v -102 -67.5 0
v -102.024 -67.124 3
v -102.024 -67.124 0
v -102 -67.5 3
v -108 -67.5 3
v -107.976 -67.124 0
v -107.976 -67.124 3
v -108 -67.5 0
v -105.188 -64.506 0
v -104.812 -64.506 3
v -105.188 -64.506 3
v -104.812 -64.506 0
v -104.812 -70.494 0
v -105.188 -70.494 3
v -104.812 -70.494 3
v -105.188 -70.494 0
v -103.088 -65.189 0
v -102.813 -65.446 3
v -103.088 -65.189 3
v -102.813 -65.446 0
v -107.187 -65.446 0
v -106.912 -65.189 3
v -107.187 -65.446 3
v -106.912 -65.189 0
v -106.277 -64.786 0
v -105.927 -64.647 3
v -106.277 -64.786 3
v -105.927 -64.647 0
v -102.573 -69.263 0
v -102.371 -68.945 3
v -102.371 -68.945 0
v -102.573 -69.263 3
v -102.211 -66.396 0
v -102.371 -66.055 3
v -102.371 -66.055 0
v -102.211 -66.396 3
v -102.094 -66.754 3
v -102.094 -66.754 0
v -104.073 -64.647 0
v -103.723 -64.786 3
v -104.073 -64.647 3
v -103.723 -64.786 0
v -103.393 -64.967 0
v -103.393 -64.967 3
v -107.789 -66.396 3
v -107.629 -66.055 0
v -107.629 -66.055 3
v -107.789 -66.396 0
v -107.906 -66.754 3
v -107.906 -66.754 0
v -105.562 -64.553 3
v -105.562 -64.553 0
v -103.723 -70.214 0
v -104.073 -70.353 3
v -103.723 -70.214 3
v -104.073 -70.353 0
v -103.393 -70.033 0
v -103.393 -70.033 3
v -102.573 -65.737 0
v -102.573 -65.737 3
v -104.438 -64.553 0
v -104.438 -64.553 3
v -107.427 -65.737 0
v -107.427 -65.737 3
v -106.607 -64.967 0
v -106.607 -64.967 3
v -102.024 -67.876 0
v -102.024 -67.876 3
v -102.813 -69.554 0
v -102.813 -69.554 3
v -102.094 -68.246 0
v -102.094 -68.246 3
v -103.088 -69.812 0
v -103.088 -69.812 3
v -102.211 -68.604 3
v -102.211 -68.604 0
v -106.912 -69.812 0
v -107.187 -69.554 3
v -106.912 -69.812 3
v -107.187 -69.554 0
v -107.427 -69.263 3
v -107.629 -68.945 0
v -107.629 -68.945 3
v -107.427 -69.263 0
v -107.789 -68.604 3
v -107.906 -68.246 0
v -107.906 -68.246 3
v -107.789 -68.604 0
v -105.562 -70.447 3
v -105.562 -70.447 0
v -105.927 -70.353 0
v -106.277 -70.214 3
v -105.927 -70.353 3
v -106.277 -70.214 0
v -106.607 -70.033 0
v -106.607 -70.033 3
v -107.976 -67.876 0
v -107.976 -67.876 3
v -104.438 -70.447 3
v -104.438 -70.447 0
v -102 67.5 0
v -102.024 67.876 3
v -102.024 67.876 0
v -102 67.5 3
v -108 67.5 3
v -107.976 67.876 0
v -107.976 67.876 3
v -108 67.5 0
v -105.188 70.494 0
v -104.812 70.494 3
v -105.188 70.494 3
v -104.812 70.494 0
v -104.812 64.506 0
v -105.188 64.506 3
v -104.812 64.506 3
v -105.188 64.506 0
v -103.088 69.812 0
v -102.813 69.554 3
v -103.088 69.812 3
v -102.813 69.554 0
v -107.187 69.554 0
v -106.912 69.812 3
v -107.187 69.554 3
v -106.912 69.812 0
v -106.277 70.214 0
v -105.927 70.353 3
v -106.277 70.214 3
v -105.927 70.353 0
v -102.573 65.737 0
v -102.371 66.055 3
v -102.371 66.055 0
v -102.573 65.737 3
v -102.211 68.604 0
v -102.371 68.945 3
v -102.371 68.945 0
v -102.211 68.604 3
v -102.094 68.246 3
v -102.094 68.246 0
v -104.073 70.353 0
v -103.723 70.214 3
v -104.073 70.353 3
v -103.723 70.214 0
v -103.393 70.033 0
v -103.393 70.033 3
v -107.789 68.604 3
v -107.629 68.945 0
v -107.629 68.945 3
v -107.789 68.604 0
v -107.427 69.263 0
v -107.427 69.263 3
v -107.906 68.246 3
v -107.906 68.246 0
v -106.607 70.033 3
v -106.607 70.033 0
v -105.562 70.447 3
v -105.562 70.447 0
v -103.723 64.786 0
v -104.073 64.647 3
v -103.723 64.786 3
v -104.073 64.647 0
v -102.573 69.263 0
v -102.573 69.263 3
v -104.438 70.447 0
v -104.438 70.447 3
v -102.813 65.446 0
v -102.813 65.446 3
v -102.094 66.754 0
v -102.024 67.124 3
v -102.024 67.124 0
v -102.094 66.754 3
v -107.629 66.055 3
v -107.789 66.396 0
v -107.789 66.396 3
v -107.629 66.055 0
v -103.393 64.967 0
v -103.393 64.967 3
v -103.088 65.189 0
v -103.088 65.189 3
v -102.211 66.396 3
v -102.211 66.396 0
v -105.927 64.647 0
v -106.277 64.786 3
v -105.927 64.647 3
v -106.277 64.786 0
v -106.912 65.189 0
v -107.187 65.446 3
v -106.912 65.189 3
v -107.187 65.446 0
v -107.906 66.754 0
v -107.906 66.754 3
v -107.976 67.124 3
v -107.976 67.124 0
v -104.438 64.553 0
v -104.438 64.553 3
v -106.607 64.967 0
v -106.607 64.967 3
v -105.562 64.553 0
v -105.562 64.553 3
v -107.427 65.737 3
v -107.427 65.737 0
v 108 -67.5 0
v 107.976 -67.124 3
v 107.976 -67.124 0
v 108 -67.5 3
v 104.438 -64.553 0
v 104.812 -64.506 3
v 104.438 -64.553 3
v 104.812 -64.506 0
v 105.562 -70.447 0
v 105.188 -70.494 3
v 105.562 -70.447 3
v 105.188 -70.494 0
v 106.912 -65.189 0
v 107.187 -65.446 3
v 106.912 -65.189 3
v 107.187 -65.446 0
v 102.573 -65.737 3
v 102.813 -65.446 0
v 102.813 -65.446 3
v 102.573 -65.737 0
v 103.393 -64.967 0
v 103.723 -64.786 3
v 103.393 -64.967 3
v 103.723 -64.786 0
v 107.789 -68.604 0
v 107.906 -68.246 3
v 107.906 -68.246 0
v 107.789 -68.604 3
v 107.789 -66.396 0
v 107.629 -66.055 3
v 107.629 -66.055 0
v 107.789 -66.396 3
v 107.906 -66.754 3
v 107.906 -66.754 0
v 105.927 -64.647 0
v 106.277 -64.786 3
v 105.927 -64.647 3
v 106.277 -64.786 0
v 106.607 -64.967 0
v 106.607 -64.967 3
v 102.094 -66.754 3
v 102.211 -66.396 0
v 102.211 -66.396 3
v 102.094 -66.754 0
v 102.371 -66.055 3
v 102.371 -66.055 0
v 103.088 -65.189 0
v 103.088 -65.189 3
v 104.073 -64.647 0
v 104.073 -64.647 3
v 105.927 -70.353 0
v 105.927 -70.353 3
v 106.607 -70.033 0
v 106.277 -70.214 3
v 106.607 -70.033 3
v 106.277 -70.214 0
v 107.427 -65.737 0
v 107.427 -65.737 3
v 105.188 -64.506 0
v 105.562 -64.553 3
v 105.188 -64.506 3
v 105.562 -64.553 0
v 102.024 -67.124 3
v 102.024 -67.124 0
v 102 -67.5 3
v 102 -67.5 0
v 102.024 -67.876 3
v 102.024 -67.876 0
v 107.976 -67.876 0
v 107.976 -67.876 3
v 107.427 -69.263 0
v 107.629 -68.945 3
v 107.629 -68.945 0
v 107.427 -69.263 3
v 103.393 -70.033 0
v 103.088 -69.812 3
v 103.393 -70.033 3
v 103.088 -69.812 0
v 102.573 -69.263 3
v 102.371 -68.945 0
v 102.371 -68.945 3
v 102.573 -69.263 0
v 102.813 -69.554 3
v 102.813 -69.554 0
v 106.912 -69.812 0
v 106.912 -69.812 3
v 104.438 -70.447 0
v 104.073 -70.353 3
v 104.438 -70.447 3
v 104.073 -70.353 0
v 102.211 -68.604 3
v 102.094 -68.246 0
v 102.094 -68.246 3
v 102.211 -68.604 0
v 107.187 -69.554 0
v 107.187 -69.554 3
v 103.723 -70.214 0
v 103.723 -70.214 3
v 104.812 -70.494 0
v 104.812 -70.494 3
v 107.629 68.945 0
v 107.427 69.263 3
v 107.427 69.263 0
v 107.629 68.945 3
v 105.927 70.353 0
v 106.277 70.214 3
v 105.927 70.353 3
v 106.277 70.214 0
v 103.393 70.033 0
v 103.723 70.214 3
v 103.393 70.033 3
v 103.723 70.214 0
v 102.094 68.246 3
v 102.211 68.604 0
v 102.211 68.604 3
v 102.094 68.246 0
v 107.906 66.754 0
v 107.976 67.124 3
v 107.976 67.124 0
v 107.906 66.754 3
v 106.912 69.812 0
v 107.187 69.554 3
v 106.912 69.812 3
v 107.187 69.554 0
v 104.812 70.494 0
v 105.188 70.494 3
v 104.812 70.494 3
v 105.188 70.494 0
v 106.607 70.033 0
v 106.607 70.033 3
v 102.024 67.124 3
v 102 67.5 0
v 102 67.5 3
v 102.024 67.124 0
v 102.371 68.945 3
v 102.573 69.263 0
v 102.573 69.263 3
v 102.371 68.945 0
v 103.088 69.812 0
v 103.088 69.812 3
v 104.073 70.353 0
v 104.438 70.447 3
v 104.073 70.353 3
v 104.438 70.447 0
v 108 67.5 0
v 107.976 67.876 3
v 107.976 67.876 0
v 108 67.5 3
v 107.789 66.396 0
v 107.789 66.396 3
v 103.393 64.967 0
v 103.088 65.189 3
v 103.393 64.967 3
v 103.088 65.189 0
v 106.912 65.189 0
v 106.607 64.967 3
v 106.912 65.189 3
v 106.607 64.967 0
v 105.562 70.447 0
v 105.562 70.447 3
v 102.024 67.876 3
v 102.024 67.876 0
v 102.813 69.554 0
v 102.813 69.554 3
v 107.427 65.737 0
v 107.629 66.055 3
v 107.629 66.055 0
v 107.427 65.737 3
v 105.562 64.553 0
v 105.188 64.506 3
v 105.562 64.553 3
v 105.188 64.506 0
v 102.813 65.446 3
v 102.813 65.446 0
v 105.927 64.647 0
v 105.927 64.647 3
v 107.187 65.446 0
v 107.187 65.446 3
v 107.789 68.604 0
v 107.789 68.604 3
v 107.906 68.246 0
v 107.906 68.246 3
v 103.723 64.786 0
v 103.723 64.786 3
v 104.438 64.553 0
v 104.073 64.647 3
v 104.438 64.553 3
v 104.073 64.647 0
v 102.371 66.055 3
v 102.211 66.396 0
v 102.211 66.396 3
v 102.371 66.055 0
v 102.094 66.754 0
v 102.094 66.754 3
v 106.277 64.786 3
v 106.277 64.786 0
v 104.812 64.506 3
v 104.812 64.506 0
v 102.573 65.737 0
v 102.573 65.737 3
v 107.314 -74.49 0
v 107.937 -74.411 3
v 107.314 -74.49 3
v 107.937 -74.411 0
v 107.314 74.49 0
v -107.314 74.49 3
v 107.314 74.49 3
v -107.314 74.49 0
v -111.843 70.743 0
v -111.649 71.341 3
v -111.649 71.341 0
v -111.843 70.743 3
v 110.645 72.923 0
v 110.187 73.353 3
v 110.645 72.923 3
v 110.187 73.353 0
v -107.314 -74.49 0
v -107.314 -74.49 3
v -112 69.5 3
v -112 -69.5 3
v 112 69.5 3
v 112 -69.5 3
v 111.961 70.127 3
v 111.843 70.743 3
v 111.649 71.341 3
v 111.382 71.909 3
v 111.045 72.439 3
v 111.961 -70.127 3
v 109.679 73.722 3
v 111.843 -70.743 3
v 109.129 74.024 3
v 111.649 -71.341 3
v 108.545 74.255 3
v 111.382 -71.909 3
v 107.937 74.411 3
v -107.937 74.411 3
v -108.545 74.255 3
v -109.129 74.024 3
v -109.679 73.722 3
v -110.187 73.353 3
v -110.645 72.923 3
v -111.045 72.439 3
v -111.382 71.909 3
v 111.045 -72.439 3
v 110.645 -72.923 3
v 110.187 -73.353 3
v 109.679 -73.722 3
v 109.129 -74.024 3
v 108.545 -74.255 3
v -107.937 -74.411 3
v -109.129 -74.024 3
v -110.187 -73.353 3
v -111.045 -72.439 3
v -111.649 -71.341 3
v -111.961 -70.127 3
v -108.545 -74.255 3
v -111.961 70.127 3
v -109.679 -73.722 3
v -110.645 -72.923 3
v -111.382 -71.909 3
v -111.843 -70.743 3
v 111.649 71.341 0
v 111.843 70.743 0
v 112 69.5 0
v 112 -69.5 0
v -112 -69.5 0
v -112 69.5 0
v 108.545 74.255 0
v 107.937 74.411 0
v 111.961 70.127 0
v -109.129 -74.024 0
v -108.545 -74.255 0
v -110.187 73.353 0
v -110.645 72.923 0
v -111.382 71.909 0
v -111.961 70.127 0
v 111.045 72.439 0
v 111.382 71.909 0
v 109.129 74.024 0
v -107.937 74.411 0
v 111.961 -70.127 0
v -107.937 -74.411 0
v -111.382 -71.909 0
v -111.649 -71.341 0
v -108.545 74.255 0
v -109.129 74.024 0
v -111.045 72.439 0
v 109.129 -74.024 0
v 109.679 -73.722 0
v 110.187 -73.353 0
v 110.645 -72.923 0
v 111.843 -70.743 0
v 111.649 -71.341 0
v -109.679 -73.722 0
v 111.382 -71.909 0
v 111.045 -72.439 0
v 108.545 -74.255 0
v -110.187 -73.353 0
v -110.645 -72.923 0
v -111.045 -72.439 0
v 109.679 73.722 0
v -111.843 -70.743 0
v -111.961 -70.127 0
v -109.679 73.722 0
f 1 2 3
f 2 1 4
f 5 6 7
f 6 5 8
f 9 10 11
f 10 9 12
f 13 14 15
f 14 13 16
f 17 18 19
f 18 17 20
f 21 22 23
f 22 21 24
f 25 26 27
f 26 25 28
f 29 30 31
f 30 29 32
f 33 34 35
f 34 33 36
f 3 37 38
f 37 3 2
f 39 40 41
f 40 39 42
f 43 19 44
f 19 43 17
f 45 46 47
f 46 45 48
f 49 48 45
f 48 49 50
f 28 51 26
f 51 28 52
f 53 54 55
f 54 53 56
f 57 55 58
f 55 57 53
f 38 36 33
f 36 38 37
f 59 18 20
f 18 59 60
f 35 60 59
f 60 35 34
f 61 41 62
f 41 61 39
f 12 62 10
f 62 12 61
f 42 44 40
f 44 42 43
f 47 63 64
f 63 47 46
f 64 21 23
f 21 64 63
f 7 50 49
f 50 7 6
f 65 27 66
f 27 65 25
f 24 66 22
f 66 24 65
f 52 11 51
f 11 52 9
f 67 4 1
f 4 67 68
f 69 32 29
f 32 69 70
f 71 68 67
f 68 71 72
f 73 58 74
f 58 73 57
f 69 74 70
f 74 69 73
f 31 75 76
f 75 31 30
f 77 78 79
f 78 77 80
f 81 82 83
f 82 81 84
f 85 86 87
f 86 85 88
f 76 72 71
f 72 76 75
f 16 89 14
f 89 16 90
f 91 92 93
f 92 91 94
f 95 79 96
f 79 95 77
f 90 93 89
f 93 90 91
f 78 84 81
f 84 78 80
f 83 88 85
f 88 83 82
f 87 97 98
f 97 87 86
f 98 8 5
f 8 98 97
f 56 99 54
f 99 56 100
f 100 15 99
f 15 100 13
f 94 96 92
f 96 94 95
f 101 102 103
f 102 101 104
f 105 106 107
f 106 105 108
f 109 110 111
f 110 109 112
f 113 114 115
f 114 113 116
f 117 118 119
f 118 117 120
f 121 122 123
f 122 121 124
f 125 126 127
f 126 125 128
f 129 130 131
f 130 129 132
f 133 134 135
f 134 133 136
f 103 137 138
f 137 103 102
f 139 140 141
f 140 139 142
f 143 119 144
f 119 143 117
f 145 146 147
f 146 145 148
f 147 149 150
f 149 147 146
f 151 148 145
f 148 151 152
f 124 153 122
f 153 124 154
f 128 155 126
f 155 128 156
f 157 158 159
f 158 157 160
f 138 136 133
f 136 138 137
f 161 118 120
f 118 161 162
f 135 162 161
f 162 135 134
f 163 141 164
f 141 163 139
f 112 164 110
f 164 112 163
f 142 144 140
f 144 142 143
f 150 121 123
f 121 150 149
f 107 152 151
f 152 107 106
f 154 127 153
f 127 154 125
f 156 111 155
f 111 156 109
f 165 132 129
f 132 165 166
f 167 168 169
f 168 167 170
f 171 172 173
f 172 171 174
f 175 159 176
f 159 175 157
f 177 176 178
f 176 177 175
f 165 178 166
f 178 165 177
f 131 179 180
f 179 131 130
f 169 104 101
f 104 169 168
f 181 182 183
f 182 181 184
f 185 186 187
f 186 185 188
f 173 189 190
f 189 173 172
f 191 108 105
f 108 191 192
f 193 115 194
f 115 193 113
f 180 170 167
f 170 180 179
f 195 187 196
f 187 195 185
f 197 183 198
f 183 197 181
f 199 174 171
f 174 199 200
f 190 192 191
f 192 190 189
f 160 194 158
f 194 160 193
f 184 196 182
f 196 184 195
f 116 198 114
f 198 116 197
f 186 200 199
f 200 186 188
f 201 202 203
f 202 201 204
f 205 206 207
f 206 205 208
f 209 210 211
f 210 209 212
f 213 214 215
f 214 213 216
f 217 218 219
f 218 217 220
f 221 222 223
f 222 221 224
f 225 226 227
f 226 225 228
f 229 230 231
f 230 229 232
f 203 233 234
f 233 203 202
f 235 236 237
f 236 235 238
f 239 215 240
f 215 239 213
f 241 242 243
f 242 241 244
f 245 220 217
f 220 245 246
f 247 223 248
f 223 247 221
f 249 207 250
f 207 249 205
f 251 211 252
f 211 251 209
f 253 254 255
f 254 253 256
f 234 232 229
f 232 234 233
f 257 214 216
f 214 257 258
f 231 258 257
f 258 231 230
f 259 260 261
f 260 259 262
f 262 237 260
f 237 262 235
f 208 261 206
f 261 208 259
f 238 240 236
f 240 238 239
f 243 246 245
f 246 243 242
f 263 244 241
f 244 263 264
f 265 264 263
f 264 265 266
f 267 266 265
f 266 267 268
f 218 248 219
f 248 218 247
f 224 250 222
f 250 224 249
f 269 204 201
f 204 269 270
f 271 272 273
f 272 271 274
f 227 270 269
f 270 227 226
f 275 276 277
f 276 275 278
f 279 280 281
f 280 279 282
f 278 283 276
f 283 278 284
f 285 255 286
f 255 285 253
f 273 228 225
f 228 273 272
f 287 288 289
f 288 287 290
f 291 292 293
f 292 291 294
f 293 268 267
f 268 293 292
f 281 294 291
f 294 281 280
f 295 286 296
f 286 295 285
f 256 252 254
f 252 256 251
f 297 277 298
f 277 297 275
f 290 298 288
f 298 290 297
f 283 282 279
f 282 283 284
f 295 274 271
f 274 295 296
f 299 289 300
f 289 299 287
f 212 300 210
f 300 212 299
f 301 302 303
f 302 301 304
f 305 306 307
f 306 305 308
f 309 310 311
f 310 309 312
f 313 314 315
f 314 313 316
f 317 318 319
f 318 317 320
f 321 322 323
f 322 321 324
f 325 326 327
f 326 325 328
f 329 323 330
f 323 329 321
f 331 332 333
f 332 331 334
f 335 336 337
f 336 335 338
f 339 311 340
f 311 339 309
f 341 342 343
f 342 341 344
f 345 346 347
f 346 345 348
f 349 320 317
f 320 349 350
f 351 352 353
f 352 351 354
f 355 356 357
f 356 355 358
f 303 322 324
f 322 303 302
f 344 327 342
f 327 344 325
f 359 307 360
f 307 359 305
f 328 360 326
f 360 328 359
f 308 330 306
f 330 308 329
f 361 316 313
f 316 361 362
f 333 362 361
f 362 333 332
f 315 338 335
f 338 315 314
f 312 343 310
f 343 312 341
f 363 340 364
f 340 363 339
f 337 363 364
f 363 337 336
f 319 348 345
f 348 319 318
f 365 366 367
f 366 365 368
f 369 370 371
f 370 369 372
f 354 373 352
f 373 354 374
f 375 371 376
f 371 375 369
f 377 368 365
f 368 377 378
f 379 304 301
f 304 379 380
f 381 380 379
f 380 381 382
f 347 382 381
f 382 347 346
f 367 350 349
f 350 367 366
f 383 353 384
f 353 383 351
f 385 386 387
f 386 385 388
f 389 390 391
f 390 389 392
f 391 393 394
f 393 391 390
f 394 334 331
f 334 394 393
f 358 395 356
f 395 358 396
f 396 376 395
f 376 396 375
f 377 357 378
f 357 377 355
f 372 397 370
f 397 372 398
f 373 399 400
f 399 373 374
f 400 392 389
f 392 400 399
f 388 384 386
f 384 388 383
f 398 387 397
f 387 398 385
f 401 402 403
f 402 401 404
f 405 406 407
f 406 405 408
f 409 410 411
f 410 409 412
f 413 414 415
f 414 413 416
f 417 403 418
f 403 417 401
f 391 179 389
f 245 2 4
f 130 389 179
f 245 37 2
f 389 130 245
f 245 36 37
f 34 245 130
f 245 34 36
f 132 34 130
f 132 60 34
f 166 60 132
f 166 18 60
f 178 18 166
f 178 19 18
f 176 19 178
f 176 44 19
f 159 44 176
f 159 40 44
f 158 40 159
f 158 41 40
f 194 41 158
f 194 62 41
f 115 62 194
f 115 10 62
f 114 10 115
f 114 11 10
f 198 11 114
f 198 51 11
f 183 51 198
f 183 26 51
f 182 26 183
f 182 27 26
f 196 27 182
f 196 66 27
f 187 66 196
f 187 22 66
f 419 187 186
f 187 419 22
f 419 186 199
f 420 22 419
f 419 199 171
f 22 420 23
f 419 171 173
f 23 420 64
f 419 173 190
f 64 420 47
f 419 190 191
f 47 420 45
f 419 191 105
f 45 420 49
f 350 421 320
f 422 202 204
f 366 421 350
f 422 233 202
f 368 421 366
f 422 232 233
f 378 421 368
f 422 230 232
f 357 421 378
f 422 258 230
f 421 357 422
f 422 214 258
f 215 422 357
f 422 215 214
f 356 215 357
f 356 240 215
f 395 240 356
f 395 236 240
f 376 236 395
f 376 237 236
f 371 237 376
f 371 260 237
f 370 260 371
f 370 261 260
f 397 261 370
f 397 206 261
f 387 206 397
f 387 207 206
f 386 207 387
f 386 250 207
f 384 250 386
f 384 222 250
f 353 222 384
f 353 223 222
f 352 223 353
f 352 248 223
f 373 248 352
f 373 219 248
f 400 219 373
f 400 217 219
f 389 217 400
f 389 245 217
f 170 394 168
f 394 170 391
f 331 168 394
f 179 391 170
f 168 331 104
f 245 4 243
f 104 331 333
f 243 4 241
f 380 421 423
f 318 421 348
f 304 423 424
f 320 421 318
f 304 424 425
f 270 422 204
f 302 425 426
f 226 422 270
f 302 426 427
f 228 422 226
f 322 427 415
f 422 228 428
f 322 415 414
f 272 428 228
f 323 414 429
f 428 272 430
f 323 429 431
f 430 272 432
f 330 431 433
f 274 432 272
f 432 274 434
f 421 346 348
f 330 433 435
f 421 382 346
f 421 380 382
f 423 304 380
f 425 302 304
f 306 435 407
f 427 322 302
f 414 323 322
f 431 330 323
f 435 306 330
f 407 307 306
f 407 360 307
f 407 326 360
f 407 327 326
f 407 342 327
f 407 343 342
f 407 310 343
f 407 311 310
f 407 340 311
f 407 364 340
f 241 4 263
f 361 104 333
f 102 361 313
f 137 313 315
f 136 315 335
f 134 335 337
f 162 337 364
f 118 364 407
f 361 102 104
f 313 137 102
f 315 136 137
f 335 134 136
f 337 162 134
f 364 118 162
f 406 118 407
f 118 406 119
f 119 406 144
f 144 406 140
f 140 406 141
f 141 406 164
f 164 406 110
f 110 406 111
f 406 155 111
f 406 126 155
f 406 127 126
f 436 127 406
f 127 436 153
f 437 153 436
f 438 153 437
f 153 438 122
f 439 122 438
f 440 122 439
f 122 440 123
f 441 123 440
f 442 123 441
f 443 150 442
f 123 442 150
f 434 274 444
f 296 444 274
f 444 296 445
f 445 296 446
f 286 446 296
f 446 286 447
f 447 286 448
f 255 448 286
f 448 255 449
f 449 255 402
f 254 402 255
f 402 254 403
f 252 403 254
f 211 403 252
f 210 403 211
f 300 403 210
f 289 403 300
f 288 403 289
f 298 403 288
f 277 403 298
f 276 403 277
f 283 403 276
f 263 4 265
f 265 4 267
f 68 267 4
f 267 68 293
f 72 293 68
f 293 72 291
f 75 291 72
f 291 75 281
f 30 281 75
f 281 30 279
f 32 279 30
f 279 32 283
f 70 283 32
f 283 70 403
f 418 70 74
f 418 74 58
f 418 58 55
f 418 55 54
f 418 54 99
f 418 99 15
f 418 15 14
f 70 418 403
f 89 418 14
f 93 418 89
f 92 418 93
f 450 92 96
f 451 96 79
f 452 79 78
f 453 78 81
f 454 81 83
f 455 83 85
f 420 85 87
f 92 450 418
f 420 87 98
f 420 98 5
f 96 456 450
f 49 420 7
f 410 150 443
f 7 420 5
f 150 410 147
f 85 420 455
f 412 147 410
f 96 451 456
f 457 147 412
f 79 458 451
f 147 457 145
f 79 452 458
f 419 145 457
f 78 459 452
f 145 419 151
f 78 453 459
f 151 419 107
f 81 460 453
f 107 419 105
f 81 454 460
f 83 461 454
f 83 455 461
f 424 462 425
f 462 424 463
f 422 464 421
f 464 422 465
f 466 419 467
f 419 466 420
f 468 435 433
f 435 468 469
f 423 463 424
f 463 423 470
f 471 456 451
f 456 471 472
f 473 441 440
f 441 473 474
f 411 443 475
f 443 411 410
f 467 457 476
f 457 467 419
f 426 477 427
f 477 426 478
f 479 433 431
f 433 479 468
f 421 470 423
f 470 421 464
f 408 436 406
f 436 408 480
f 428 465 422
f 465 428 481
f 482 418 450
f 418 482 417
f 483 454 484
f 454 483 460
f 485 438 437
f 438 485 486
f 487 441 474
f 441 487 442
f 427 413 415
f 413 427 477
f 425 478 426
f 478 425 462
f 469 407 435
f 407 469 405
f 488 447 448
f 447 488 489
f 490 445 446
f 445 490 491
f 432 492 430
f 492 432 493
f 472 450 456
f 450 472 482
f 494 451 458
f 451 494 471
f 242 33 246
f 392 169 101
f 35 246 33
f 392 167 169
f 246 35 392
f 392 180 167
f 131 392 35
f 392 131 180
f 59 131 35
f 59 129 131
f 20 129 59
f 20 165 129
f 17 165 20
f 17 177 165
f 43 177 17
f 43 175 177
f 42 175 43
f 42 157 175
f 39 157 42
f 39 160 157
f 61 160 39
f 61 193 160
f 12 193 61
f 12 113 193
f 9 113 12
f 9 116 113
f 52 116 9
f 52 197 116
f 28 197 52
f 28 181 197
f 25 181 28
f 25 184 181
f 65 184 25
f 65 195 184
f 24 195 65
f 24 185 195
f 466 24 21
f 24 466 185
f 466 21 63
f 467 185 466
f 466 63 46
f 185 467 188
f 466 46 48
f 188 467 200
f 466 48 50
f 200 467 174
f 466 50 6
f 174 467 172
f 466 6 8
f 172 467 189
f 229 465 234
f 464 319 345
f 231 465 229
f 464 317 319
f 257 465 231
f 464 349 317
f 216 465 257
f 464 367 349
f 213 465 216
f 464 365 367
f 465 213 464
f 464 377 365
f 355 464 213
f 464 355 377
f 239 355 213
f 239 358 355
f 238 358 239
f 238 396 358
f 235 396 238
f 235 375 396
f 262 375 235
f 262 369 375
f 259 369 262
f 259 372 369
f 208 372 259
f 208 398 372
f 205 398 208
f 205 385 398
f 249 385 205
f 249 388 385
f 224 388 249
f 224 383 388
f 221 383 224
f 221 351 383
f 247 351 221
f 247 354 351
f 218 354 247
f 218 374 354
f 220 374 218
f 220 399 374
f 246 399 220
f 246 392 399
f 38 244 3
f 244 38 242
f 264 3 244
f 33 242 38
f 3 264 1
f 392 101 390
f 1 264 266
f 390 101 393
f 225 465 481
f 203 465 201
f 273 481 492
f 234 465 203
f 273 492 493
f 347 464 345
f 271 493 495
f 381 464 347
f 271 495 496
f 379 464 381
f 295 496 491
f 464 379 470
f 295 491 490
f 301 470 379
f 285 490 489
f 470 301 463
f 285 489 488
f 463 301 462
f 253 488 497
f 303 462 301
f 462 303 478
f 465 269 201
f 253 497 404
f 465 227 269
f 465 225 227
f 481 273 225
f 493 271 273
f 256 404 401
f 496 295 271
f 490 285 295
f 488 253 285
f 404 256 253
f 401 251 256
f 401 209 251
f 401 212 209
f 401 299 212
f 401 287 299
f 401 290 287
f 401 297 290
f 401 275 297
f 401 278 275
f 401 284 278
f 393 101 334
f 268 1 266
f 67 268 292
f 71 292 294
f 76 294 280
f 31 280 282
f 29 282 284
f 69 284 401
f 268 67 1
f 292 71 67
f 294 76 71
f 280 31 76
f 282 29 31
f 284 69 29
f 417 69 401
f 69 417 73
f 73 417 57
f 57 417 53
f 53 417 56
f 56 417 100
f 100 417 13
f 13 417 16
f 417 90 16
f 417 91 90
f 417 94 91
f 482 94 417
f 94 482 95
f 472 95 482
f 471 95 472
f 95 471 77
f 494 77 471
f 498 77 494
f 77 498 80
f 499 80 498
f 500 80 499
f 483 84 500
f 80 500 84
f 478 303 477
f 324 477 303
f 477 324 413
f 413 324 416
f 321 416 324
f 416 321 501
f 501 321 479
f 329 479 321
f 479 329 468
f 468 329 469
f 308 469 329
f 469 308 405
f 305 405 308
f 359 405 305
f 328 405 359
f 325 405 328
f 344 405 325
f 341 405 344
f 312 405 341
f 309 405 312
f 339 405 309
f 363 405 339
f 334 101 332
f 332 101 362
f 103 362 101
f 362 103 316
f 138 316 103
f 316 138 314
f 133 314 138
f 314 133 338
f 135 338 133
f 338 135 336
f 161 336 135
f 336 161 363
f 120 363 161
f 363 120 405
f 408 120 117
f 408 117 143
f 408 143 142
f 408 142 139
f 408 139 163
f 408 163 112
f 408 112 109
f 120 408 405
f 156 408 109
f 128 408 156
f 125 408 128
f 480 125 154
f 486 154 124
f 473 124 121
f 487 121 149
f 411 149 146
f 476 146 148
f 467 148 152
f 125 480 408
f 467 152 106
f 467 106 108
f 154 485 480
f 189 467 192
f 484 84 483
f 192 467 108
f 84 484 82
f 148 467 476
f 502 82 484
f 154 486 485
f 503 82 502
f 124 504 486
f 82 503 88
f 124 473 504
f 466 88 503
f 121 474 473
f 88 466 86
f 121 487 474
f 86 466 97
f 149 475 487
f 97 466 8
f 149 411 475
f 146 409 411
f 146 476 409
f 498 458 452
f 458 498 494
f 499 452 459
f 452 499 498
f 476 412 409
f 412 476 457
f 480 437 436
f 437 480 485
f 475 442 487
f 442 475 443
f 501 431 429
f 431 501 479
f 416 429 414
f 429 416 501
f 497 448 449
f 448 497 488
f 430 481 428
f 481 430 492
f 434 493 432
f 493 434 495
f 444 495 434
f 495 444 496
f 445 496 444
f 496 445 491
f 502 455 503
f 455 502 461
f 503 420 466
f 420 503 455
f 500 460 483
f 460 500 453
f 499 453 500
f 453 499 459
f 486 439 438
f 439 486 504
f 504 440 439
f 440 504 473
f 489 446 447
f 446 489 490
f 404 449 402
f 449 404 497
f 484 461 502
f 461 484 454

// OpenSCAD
$fn = 50;


difference() {
	union() {
		hull() {
			translate(v = [-107.0000000000, 69.5000000000, 0]) {
				cylinder(h = 3, r = 5);
			}
			translate(v = [107.0000000000, 69.5000000000, 0]) {
				cylinder(h = 3, r = 5);
			}
			translate(v = [-107.0000000000, -69.5000000000, 0]) {
				cylinder(h = 3, r = 5);
			}
			translate(v = [107.0000000000, -69.5000000000, 0]) {
				cylinder(h = 3, r = 5);
			}
		}
	}
	union() {
		translate(v = [-105.0000000000, -67.5000000000, -100.0000000000]) {
			cylinder(h = 200, r = 3.0000000000);
		}
		translate(v = [-105.0000000000, 67.5000000000, -100.0000000000]) {
			cylinder(h = 200, r = 3.0000000000);
		}
		translate(v = [105.0000000000, -67.5000000000, -100.0000000000]) {
			cylinder(h = 200, r = 3.0000000000);
		}
		translate(v = [105.0000000000, 67.5000000000, -100.0000000000]) {
			cylinder(h = 200, r = 3.0000000000);
		}
	}
}
